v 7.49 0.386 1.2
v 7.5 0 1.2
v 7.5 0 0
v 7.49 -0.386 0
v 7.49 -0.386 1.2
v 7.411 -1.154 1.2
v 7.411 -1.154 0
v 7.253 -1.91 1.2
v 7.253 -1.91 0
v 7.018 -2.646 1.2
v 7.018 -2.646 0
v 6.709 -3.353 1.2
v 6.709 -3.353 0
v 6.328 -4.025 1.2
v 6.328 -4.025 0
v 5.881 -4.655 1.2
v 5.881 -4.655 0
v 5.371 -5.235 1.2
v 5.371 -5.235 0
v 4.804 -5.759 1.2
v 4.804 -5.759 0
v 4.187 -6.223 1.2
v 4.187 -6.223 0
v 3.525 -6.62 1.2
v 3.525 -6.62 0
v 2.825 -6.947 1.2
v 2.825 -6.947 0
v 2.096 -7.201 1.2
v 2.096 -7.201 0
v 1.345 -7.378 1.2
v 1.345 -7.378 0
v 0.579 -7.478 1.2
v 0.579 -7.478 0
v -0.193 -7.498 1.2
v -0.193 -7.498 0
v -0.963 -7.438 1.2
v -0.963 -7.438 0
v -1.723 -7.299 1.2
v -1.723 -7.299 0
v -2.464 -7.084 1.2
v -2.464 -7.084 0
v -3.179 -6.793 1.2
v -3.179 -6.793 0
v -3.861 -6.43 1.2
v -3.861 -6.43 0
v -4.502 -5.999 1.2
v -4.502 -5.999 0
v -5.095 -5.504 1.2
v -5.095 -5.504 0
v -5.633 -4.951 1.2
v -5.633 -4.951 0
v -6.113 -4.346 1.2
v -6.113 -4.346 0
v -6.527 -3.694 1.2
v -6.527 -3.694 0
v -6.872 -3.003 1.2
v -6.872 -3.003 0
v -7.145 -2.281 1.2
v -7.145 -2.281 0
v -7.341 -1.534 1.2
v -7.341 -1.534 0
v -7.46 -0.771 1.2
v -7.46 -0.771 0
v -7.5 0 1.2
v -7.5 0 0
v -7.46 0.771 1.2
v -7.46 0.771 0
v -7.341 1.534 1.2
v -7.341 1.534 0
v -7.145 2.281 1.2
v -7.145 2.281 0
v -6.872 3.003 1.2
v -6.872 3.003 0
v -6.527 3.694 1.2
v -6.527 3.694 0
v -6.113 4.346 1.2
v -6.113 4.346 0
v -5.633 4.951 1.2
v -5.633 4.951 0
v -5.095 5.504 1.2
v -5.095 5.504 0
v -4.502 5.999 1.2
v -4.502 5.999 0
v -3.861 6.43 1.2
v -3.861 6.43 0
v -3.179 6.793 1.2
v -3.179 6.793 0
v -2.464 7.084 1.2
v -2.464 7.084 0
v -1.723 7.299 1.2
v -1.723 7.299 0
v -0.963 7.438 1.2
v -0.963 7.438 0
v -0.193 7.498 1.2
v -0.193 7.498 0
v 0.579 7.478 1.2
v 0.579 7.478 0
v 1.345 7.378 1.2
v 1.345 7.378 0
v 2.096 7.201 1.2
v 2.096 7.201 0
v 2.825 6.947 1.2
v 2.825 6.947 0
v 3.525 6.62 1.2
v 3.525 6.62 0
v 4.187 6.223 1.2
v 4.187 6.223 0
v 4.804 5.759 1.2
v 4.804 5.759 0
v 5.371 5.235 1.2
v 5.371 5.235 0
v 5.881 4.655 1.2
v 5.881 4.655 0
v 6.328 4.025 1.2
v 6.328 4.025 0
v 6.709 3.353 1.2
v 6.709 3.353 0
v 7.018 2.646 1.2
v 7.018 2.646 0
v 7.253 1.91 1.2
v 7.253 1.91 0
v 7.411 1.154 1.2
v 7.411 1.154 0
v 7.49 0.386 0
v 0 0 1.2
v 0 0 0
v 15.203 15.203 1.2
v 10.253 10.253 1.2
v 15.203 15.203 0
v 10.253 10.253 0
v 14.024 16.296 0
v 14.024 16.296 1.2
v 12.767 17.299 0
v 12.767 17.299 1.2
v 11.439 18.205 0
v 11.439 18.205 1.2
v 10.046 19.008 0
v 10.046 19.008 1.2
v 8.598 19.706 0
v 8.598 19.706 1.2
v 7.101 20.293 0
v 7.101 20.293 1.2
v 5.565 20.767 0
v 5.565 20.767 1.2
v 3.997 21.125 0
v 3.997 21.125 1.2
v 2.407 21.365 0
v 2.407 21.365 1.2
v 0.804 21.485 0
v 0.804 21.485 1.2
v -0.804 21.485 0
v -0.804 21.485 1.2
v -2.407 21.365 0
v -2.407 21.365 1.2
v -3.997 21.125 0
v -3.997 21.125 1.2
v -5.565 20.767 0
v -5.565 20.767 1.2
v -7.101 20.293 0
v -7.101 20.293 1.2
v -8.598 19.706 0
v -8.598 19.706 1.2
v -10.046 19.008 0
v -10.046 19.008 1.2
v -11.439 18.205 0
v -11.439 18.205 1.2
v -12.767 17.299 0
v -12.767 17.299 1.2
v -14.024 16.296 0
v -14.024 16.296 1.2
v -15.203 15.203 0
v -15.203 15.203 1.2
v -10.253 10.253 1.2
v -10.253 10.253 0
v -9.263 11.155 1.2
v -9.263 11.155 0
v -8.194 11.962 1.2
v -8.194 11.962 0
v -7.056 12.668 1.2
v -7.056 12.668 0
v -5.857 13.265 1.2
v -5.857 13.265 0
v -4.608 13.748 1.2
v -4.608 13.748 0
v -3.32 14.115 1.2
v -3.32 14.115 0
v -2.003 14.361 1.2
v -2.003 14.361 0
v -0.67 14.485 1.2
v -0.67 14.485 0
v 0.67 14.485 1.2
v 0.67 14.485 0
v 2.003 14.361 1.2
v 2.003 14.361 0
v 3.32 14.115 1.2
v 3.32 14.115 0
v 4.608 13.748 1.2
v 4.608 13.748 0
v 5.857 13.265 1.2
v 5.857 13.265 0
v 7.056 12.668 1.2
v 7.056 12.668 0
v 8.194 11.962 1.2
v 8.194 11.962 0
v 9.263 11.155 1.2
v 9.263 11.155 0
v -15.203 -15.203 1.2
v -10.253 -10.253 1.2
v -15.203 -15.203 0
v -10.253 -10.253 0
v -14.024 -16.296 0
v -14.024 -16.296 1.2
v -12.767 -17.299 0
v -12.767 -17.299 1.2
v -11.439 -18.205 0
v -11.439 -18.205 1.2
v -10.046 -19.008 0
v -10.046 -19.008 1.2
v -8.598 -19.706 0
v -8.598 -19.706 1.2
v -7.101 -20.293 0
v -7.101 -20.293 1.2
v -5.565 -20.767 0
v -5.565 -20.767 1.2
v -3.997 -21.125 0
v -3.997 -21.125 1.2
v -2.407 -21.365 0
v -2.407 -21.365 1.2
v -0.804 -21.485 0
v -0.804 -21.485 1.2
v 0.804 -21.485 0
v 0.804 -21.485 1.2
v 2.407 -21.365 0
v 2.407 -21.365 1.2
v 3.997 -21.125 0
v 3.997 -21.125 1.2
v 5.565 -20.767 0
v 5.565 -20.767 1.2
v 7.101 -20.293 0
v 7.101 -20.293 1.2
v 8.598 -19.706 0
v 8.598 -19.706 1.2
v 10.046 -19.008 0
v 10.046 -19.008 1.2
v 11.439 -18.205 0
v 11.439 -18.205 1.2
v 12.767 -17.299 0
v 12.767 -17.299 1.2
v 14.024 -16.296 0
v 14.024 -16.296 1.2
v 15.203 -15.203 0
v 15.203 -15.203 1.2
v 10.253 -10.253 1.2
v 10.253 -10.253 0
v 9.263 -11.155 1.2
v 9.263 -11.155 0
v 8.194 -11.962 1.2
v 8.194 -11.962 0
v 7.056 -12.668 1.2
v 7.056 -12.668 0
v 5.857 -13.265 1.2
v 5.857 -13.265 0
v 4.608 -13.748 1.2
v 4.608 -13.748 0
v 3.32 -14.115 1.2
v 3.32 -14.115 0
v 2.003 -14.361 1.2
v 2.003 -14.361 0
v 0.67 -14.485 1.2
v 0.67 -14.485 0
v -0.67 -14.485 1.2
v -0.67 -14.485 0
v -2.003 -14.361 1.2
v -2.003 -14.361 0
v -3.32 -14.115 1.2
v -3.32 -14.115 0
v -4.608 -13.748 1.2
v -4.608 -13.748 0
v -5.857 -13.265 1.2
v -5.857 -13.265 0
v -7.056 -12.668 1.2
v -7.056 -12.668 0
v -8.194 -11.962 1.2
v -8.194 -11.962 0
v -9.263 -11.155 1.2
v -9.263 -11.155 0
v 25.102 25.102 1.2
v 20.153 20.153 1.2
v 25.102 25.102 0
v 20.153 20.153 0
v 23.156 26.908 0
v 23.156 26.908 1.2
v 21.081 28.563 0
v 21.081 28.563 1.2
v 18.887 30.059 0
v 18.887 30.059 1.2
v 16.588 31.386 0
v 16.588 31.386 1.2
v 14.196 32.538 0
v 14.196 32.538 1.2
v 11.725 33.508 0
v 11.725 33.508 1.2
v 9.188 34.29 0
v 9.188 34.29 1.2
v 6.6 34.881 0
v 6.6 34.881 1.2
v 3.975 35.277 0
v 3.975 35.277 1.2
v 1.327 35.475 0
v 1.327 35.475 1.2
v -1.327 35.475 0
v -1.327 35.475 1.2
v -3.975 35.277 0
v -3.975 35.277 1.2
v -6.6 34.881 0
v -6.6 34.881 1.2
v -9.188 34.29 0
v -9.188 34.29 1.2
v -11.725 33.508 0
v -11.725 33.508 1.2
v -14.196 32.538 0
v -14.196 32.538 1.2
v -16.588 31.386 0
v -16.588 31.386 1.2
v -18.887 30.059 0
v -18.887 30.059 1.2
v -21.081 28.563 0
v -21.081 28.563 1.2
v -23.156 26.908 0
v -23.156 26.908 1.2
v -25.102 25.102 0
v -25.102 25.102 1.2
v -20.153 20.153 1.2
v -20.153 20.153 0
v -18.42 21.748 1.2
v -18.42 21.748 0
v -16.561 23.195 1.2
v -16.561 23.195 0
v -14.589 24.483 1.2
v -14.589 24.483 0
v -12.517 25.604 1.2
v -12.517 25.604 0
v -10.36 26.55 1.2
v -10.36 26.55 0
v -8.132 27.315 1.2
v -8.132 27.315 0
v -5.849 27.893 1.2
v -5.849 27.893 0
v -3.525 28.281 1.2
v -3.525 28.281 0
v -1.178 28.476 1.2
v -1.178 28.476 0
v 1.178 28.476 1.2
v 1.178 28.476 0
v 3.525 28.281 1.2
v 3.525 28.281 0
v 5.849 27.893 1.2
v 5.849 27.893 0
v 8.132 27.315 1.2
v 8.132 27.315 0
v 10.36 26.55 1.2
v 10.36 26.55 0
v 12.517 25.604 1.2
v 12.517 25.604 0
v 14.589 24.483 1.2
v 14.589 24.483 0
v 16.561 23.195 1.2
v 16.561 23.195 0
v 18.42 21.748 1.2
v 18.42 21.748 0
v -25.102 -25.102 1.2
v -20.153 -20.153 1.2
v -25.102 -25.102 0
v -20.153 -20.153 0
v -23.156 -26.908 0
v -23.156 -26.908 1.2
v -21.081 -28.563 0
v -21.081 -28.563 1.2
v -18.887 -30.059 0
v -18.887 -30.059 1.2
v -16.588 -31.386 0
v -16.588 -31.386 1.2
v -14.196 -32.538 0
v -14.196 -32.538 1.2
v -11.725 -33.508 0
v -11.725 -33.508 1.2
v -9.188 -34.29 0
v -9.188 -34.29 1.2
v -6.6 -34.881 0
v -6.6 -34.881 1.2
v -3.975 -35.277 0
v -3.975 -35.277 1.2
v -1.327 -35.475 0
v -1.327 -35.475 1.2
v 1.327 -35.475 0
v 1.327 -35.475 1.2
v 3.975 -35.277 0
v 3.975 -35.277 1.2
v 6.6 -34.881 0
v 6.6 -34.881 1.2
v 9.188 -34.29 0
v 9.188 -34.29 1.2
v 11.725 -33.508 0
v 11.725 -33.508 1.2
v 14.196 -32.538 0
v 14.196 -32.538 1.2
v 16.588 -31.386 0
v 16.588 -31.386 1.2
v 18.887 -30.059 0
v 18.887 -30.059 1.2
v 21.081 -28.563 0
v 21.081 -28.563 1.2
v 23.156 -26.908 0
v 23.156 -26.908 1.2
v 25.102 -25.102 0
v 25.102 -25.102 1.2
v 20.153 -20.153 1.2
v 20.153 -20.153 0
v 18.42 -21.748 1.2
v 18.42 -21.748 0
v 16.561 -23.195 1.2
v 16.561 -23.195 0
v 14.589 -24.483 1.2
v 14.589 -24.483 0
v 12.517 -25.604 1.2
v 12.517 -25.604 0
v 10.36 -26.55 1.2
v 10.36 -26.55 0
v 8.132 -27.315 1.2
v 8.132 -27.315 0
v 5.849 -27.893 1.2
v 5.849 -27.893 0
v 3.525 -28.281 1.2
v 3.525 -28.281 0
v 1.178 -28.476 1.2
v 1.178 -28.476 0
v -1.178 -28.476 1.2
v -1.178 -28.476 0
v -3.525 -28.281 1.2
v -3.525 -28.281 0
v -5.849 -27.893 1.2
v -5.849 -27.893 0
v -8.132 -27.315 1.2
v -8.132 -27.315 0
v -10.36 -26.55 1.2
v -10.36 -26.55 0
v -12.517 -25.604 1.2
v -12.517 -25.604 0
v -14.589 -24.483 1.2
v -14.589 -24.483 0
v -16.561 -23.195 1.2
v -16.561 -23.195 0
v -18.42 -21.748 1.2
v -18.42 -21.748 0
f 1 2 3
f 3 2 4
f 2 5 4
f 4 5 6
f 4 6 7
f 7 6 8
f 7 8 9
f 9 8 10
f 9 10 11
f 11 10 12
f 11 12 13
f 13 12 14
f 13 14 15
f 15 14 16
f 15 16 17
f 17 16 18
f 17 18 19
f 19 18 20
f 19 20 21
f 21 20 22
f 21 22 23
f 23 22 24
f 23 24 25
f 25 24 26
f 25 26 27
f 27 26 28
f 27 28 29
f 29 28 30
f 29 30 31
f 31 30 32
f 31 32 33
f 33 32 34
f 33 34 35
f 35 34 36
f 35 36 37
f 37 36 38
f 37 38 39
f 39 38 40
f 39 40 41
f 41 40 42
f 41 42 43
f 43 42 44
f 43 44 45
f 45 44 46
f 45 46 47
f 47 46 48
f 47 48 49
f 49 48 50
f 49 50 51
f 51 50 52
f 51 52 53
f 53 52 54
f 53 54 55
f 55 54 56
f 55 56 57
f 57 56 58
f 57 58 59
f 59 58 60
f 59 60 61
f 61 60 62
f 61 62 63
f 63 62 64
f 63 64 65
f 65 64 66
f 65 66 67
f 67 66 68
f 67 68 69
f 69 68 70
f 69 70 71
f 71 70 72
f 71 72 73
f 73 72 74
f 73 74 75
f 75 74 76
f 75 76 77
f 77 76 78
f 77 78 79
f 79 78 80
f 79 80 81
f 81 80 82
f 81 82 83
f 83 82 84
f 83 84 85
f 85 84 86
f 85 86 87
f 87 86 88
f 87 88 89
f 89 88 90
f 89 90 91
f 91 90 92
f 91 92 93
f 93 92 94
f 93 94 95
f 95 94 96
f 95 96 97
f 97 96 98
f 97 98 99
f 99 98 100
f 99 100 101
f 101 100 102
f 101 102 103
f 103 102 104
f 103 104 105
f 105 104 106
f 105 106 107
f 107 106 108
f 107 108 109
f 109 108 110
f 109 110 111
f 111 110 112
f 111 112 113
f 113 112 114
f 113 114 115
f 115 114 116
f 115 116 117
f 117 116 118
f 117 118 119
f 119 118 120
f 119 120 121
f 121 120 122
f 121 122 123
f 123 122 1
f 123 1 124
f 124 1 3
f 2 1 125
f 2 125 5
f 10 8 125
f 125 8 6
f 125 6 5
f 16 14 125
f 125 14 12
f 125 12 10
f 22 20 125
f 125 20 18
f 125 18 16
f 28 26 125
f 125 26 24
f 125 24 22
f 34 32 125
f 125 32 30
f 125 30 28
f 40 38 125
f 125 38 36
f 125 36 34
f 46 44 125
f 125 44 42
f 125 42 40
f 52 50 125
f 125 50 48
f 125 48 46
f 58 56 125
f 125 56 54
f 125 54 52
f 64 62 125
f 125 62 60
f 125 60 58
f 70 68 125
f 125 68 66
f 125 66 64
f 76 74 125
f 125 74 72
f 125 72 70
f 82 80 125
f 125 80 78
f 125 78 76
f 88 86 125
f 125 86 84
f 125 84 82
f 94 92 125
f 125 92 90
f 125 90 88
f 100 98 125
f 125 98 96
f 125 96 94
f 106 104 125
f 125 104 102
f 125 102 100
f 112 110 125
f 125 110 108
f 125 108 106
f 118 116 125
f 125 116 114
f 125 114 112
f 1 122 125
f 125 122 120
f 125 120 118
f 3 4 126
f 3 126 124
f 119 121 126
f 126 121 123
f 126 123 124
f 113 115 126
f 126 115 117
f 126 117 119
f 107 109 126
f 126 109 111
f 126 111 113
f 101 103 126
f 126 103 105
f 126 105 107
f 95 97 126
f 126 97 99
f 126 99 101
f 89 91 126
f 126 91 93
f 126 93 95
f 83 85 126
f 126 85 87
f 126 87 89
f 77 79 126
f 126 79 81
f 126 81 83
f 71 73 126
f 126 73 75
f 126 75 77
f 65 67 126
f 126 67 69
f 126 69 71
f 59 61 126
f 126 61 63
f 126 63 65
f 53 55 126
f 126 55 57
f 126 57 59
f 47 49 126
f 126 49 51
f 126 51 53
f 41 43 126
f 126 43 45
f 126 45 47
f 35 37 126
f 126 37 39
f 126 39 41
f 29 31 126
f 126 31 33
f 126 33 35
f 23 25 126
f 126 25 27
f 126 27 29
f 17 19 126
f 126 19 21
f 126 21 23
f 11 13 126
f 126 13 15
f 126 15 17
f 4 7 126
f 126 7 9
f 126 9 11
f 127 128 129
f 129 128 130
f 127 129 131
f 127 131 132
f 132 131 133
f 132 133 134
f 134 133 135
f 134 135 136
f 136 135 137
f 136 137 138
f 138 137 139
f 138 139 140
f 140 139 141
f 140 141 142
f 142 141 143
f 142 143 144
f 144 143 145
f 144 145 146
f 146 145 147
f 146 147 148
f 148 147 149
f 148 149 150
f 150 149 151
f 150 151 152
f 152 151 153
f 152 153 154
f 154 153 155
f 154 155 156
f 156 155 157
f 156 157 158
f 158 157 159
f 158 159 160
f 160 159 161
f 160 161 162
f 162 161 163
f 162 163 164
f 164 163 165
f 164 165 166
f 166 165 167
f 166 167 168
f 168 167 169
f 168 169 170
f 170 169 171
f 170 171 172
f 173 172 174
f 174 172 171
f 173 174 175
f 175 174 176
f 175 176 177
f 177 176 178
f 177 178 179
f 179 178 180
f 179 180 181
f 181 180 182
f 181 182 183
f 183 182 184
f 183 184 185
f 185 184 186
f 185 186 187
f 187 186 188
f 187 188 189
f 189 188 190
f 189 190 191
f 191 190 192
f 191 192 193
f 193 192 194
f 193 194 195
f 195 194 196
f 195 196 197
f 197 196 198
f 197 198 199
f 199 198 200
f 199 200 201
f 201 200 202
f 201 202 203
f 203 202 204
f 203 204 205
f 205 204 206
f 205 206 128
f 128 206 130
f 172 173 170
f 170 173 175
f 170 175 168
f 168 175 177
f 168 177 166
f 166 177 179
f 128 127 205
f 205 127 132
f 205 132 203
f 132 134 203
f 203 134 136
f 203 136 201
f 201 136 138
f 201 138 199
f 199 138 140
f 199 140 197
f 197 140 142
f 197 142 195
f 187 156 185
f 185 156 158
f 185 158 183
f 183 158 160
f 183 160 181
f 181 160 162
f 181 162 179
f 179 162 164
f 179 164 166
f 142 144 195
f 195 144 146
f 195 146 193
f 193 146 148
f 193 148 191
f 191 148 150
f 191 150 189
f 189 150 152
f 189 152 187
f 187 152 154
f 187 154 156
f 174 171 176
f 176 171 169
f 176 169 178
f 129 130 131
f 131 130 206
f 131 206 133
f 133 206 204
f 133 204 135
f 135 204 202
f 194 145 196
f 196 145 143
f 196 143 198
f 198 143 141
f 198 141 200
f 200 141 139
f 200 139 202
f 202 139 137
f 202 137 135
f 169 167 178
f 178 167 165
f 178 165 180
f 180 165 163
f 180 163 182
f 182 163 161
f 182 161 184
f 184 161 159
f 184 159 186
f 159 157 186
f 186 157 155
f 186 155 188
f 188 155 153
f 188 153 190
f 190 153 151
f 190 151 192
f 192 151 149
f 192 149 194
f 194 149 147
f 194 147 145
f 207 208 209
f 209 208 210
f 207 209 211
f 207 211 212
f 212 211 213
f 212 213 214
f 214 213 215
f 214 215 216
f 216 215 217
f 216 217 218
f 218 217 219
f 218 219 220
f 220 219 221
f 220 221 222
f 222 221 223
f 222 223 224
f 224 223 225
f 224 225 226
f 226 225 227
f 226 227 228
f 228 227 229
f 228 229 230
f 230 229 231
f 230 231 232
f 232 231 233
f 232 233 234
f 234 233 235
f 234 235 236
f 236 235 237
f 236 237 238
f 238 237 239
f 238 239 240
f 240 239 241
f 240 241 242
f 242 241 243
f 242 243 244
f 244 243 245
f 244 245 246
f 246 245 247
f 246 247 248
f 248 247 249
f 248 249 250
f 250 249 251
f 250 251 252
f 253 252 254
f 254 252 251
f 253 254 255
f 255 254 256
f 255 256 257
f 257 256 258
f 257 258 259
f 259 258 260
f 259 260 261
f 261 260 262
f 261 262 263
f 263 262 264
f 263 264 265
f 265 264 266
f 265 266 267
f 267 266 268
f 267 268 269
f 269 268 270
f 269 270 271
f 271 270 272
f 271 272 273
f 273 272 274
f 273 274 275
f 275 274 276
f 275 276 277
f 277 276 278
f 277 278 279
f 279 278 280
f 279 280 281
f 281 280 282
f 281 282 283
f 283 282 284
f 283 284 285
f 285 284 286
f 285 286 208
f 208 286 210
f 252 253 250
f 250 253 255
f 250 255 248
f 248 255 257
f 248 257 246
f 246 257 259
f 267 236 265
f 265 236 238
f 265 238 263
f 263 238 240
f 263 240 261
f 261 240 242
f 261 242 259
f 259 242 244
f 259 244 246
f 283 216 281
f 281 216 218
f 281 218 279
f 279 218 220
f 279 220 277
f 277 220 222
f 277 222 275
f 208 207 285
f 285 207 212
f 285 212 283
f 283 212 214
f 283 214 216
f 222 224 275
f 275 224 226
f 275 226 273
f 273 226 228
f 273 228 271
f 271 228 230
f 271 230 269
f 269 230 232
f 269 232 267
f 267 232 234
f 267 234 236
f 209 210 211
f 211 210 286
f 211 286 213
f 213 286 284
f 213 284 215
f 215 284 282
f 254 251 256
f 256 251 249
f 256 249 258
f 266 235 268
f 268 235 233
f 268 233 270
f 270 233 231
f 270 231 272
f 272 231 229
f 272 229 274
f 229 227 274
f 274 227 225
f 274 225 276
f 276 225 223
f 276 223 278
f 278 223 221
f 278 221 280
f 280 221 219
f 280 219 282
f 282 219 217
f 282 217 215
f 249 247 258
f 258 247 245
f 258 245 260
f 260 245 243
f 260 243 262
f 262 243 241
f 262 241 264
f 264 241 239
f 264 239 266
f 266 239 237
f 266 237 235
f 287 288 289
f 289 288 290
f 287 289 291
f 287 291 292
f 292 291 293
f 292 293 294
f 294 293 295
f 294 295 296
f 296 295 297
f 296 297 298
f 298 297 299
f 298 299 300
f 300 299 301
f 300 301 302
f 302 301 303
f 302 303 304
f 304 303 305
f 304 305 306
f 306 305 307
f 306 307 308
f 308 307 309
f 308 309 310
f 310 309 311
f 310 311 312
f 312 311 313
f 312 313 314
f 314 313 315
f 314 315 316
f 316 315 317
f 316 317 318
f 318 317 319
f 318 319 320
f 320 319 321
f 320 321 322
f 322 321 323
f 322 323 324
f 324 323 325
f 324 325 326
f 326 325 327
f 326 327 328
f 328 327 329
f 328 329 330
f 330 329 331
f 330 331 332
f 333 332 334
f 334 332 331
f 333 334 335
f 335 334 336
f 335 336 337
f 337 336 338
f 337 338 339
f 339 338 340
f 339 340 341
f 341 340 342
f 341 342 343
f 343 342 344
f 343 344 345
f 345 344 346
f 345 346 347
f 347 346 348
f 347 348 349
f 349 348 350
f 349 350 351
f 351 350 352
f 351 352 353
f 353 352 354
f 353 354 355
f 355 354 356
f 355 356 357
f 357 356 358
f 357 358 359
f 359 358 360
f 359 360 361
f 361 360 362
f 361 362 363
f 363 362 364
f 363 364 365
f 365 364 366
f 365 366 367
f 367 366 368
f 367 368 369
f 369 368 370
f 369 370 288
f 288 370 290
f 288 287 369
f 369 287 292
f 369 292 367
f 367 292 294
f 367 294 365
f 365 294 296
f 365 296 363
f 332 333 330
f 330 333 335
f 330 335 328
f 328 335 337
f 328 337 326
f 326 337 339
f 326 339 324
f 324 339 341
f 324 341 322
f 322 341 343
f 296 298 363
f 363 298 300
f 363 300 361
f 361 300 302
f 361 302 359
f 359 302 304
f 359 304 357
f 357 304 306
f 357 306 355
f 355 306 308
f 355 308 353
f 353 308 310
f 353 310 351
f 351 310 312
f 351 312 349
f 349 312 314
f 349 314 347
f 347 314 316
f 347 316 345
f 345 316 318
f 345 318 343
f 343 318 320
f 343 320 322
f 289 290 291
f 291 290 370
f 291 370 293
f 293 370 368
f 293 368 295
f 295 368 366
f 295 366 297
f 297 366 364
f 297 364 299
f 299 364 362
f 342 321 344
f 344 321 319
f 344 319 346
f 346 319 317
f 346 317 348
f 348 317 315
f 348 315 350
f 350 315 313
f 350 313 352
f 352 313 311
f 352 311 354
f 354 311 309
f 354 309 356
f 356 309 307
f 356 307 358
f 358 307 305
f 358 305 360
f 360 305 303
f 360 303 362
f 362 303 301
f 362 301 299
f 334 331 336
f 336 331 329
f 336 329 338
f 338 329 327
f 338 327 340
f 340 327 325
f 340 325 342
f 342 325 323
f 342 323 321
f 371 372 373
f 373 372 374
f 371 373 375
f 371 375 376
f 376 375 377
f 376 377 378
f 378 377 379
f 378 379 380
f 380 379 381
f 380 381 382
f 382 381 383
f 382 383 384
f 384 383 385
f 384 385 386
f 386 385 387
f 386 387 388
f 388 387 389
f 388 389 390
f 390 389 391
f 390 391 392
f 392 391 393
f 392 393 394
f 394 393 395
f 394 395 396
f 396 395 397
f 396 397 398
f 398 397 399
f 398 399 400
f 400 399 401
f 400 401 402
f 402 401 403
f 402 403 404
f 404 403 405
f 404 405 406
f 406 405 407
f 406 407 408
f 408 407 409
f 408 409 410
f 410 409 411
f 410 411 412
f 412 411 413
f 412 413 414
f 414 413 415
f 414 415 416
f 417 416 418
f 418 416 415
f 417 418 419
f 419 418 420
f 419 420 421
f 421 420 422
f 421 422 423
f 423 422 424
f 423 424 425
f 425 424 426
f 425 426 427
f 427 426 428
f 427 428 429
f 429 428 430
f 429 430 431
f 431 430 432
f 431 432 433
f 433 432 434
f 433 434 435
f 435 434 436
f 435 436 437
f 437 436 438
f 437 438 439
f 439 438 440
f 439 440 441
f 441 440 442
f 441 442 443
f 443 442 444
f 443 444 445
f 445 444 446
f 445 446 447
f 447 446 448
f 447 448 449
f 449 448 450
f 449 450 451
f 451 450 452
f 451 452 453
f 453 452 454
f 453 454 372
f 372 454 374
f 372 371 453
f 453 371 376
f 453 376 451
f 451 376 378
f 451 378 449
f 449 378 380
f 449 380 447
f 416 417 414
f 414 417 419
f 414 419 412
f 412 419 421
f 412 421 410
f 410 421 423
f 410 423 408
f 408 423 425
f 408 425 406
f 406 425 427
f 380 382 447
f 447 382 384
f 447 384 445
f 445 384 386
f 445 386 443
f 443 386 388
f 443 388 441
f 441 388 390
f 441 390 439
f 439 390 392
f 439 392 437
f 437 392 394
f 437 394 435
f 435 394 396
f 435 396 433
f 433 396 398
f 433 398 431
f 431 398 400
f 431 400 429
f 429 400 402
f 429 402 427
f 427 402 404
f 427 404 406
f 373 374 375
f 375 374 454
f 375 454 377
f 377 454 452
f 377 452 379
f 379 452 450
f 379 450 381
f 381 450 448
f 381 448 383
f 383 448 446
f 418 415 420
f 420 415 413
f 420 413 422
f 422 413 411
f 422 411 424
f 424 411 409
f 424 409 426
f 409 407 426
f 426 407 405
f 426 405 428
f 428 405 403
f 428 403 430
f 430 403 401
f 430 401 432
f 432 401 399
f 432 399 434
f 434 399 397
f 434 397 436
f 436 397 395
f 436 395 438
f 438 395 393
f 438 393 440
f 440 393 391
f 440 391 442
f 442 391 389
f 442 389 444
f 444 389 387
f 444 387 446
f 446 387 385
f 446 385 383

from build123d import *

# Parameters (mm, degrees)
SKICA1_R                  = 7.5
P_IDAT_VYSUNUT_M1_DEPTH   = 1.2
P_IDAT_VYSUNUT_M1_2_DEPTH = 1.2
P_IDAT_VYSUNUT_M1_3_DEPTH = 1.2
P_IDAT_VYSUNUT_M1_4_DEPTH = 1.2
P_IDAT_VYSUNUT_M1_5_DEPTH = 1.2


with BuildPart() as part:
    # Skica1 → Přidat vysunutím1 (new body)
    with BuildSketch(Plane.XY):
        Circle(SKICA1_R)
    extrude(amount=P_IDAT_VYSUNUT_M1_DEPTH)


with BuildPart() as body_2:
    # Skica1 → P_idat vysunut_m1 2 (new body)
    with BuildSketch(Plane.XY):
        with BuildLine():
            ThreePointArc((-10.253048327, 10.253048327), (0, 14.5), (10.253048327, 10.253048327))
            Line((10.253048327, 10.253048327), (15.202795796, 15.202795796))
            ThreePointArc((15.202795796, 15.202795796), (0, 21.5), (-15.202795796, 15.202795796))
            Line((-15.202795796, 15.202795796), (-10.253048327, 10.253048327))
        make_face()
    extrude(amount=P_IDAT_VYSUNUT_M1_2_DEPTH)


with BuildPart() as body_3:
    # Skica1 → P_idat vysunut_m1 3 (new body)
    with BuildSketch(Plane.XY):
        with BuildLine():
            ThreePointArc((10.253048327, -10.253048327), (0, -14.5), (-10.253048327, -10.253048327))
            Line((-10.253048327, -10.253048327), (-15.202795796, -15.202795796))
            ThreePointArc((-15.202795796, -15.202795796), (0, -21.5), (15.202795796, -15.202795796))
            Line((15.202795796, -15.202795796), (10.253048327, -10.253048327))
        make_face()
    extrude(amount=P_IDAT_VYSUNUT_M1_3_DEPTH)


with BuildPart() as body_4:
    # Skica1 → P_idat vysunut_m1 4 (new body)
    with BuildSketch(Plane.XY):
        with BuildLine():
            ThreePointArc((-20.152543264, 20.152543264), (0, 28.5), (20.152543264, 20.152543264))
            Line((20.152543264, 20.152543264), (25.102290732, 25.102290732))
            ThreePointArc((25.102290732, 25.102290732), (0, 35.5), (-25.102290732, 25.102290732))
            Line((-25.102290732, 25.102290732), (-20.152543264, 20.152543264))
        make_face()
    extrude(amount=P_IDAT_VYSUNUT_M1_4_DEPTH)


with BuildPart() as body_5:
    # Skica1 → P_idat vysunut_m1 5 (new body)
    with BuildSketch(Plane.XY):
        with BuildLine():
            ThreePointArc((20.152543264, -20.152543264), (0, -28.5), (-20.152543264, -20.152543264))
            Line((-20.152543264, -20.152543264), (-25.102290732, -25.102290732))
            ThreePointArc((-25.102290732, -25.102290732), (0, -35.5), (25.102290732, -25.102290732))
            Line((25.102290732, -25.102290732), (20.152543264, -20.152543264))
        make_face()
    extrude(amount=P_IDAT_VYSUNUT_M1_5_DEPTH)


solid = Compound([part.part, body_2.part, body_3.part, body_4.part, body_5.part])
